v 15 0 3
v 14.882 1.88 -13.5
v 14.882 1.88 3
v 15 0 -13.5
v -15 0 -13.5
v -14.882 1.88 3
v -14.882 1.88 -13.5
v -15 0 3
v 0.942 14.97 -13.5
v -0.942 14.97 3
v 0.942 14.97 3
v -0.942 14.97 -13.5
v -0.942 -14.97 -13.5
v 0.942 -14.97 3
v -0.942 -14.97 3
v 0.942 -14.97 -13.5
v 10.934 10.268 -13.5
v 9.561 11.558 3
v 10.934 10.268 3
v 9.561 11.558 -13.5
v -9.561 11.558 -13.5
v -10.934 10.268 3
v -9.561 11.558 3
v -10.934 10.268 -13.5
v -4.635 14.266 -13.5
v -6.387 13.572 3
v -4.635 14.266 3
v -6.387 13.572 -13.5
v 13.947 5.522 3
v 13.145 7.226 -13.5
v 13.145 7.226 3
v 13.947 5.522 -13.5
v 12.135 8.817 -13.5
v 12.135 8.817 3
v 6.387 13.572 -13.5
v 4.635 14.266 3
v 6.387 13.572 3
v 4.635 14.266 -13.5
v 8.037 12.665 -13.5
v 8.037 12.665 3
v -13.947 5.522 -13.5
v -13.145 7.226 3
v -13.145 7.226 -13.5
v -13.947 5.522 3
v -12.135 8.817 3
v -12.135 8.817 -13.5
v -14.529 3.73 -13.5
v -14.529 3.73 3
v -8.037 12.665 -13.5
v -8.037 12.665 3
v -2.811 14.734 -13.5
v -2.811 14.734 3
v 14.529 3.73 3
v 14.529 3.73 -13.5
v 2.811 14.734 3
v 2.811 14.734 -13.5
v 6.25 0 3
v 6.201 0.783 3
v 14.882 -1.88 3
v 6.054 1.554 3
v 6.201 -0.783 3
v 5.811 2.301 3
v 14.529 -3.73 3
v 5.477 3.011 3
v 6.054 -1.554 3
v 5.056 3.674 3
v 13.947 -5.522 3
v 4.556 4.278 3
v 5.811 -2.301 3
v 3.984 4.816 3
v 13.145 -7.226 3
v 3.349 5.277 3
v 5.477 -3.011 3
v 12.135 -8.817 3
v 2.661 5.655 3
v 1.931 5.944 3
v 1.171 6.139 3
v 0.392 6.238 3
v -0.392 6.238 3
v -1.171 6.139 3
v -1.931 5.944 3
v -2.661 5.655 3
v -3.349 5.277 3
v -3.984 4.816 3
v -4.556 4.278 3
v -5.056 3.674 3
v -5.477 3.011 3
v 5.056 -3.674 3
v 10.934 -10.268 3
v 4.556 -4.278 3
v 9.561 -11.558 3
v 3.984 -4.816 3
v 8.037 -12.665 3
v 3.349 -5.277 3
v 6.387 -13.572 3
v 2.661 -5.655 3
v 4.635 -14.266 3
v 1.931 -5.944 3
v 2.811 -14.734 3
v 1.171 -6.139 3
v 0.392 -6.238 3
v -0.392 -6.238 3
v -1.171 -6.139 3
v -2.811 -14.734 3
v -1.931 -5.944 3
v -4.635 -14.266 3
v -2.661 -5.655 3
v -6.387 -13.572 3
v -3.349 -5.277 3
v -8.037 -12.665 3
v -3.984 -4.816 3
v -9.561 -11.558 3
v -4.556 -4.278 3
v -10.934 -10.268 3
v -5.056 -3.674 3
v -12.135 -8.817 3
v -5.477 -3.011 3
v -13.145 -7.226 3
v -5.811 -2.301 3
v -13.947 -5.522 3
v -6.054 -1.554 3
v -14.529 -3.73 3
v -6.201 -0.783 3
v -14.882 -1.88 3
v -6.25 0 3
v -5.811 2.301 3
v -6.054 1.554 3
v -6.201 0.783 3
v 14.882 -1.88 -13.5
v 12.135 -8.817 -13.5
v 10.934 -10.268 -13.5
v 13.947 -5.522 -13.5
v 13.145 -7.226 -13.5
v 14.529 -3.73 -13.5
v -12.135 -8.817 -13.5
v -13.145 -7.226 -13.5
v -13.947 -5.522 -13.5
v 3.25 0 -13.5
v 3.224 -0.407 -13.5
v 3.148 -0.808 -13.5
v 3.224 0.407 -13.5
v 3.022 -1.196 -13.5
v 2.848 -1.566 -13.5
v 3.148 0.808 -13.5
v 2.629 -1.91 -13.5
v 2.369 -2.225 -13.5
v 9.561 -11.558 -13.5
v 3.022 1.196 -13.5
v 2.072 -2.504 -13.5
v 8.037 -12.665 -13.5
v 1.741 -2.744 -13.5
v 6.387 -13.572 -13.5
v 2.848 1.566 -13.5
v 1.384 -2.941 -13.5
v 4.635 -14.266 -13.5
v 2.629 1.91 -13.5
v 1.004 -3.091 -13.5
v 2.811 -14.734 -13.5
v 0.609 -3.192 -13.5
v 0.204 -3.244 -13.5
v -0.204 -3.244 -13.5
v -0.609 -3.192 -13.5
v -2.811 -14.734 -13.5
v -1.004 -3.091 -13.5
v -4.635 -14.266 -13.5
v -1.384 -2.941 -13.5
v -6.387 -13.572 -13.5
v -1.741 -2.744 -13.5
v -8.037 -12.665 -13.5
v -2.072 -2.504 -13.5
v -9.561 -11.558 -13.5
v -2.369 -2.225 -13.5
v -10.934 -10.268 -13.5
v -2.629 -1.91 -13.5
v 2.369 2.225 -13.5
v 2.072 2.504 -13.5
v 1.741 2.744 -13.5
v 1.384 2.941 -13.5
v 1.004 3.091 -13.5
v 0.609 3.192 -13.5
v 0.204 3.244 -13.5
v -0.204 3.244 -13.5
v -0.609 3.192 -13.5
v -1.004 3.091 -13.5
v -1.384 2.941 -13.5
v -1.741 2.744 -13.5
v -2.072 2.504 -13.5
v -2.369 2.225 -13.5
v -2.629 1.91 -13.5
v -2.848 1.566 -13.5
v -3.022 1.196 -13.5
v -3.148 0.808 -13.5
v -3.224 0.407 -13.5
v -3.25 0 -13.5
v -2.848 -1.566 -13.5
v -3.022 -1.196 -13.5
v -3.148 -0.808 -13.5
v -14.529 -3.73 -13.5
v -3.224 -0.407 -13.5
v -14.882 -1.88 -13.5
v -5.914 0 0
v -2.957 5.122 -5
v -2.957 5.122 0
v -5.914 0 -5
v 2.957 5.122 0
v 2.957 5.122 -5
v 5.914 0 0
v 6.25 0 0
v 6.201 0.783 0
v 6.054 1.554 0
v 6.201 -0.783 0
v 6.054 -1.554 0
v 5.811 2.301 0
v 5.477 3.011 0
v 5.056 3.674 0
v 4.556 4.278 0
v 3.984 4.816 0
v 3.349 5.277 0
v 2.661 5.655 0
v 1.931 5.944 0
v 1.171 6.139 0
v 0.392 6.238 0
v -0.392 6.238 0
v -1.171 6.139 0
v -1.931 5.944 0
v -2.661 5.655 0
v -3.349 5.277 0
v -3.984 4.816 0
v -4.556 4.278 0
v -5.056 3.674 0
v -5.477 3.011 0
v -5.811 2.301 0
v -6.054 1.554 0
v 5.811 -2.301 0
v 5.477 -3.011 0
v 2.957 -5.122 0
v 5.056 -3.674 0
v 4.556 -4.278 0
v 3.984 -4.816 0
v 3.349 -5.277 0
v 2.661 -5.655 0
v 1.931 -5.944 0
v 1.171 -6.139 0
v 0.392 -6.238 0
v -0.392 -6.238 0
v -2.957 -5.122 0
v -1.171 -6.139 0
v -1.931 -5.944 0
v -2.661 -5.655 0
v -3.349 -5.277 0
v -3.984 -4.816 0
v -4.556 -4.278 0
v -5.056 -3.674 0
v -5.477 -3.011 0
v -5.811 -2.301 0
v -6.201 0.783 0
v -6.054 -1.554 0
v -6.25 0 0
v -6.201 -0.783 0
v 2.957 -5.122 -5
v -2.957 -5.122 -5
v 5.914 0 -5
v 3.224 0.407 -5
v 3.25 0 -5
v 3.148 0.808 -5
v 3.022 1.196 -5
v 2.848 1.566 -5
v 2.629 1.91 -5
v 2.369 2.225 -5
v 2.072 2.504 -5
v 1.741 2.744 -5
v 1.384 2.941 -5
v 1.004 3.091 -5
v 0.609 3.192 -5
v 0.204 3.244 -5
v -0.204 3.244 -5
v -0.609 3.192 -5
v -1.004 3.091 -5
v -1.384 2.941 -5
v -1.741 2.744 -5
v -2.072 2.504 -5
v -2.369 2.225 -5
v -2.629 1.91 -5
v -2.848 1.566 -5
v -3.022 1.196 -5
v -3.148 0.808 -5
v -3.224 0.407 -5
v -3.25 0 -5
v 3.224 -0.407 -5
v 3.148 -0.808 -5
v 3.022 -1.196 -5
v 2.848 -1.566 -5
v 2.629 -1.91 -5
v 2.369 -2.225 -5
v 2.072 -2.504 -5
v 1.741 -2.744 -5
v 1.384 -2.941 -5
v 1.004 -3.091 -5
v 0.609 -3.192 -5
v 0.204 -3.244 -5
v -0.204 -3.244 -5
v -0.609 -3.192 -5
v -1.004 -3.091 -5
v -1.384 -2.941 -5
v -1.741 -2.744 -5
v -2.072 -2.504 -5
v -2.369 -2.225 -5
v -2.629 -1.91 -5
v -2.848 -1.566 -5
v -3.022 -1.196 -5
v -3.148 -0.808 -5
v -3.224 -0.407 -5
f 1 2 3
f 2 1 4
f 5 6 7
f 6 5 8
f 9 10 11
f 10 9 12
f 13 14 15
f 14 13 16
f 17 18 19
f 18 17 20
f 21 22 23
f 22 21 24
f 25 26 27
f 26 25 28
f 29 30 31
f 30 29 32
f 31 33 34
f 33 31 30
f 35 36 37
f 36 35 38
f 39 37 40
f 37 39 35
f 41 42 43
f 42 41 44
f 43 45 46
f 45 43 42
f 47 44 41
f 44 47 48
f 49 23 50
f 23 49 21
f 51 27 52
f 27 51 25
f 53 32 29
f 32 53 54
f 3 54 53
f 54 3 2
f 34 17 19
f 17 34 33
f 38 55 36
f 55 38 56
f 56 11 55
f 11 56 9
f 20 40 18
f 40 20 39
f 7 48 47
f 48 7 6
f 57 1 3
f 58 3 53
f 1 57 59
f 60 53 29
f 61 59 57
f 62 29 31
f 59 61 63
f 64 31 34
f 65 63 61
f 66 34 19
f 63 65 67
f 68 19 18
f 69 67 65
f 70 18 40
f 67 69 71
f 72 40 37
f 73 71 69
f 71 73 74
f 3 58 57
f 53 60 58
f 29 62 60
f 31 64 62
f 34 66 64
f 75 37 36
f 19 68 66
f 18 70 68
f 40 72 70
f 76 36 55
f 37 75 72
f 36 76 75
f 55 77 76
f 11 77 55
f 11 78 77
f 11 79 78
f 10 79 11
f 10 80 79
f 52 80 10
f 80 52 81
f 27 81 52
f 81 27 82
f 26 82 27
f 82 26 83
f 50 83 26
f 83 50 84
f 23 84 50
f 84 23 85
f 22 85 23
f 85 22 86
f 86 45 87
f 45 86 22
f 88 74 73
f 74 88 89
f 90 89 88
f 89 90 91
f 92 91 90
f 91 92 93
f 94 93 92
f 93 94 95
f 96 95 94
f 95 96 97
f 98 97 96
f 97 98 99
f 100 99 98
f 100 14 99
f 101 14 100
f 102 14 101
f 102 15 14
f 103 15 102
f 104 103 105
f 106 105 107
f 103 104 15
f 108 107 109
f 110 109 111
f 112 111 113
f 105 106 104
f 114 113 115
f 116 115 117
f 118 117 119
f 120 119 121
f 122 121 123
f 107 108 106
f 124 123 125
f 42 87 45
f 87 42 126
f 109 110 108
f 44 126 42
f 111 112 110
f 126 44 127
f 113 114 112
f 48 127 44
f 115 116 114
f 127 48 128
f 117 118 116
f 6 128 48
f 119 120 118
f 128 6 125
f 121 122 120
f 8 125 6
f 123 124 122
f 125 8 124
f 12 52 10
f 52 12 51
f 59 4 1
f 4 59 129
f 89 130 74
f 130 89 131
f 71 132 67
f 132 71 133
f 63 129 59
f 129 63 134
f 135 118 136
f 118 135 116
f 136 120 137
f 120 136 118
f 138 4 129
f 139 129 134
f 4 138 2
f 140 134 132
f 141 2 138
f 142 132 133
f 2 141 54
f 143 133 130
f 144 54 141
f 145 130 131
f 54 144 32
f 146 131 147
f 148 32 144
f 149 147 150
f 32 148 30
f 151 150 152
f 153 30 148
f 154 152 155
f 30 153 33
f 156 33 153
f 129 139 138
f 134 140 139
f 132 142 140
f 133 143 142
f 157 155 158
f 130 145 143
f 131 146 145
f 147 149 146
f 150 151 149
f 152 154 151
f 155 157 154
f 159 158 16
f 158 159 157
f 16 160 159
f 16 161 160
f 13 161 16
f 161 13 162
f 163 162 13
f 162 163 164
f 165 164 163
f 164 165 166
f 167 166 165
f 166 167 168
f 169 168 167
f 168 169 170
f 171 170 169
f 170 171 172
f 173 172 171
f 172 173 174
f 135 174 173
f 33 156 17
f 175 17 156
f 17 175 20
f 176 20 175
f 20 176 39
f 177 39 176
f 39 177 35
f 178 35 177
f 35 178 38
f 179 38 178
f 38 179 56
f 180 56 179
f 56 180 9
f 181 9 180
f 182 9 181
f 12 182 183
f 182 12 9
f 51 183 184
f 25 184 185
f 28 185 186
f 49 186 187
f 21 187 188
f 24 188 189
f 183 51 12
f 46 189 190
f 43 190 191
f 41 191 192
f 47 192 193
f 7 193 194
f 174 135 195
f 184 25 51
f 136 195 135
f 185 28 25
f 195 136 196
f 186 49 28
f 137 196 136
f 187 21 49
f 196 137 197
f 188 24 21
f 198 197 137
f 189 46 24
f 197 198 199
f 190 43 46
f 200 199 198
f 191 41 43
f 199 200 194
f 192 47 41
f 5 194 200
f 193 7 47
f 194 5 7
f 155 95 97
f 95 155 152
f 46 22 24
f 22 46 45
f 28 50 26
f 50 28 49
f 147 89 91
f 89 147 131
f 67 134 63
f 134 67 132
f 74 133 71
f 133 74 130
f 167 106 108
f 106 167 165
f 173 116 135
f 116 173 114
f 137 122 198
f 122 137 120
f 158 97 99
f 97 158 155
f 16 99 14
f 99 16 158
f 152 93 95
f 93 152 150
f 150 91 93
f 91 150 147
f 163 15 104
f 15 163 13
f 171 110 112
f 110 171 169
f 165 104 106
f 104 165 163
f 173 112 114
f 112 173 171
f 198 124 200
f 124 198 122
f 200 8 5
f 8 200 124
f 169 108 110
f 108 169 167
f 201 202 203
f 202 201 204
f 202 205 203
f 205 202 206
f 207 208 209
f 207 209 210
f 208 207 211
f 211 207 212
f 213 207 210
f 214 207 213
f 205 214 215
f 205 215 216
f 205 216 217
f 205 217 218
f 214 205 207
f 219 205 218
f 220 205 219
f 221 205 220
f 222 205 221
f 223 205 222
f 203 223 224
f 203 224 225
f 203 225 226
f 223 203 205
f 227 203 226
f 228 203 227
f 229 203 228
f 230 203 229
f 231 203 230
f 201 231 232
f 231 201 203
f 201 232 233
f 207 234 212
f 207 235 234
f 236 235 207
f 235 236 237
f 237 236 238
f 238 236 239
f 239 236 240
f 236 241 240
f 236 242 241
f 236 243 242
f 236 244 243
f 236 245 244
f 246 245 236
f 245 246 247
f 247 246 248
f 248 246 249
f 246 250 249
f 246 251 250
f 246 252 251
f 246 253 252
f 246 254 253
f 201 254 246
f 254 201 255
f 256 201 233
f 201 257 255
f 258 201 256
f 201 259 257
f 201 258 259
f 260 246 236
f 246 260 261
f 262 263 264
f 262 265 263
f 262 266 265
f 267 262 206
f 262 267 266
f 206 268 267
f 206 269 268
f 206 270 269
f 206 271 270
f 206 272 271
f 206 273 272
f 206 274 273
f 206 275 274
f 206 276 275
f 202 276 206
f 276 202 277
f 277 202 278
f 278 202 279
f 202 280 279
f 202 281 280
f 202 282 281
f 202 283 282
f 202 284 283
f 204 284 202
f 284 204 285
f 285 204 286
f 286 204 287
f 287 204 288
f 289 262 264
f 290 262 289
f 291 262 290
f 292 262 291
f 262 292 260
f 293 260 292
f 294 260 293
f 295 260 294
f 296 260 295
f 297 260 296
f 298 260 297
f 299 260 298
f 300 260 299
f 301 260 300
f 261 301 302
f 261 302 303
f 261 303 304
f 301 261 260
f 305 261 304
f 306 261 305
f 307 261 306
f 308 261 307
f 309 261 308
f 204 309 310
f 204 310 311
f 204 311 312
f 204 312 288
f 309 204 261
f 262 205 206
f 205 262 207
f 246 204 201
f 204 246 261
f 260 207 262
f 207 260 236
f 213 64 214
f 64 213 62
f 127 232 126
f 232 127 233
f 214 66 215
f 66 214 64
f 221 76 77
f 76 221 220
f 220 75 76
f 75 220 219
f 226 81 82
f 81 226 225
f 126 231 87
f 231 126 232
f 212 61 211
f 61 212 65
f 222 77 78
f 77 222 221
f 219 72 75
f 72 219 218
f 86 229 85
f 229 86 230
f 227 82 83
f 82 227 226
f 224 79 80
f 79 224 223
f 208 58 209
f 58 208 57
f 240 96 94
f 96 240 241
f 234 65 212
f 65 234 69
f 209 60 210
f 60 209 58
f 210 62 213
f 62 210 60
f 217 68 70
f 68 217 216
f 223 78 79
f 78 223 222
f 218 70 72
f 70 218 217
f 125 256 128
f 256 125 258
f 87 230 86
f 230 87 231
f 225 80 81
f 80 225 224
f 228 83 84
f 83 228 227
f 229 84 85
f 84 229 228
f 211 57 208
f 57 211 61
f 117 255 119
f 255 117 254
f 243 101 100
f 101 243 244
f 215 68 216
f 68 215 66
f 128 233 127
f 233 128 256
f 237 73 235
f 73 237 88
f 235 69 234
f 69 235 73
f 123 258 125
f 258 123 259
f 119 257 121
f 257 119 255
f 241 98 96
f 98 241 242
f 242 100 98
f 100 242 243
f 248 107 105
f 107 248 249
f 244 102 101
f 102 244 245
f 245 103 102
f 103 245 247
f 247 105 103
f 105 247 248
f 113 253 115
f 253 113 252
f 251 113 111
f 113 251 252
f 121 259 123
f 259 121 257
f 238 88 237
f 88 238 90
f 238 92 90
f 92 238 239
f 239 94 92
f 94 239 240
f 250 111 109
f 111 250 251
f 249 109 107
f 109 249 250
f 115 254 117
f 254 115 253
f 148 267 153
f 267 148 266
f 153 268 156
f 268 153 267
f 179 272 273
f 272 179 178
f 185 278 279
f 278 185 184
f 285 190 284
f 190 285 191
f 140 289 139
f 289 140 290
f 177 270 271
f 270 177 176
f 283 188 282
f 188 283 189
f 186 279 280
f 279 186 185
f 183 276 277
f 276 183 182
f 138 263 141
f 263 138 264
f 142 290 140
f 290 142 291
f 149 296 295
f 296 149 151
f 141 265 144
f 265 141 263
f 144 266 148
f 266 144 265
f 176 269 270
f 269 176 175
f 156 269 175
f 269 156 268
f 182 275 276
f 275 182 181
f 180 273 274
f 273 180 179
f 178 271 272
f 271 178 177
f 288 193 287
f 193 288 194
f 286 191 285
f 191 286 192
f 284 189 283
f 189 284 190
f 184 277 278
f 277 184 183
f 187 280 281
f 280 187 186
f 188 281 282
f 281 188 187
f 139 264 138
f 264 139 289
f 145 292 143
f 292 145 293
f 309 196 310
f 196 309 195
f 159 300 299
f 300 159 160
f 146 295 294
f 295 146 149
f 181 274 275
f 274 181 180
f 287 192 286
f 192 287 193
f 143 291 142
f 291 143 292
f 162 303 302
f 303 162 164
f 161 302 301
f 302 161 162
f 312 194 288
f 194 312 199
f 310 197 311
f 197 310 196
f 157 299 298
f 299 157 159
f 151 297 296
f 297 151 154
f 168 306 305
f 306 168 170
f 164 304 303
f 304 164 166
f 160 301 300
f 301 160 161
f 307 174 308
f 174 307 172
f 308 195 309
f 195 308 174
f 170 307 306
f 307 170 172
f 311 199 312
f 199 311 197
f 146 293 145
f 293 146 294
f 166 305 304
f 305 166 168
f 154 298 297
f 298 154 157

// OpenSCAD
$fn = 50;


difference() {
	union() {
		translate(v = [0, 0, -13.5000000000]) {
			cylinder(h = 16.5000000000, r = 15.0000000000);
		}
		#translate(v = [0, 0, -15.0000000000]) {
			cylinder(h = 15, r = 2.8750000000);
		}
	}
	union() {
		translate(v = [0, 0, 0]) {
			rotate(a = [0, 0, 0]) {
				difference() {
					union() {
						translate(v = [0, 0, -5]) {
							linear_extrude(height = 5) {
								polygon(points = [[5.9142500000, 0.0000000000], [2.9571250000, 5.1218907443], [-2.9571250000, 5.1218907443], [-5.9142500000, 0.0000000000], [-2.9571250000, -5.1218907443], [2.9571250000, -5.1218907443]]);
							}
						}
					}
					union();
				}
			}
		}
		#cylinder(h = 3, r = 6.2500000000);
		#translate(v = [0, 0, -100.0000000000]) {
			cylinder(h = 200, r = 3.2500000000);
		}
	}
}
